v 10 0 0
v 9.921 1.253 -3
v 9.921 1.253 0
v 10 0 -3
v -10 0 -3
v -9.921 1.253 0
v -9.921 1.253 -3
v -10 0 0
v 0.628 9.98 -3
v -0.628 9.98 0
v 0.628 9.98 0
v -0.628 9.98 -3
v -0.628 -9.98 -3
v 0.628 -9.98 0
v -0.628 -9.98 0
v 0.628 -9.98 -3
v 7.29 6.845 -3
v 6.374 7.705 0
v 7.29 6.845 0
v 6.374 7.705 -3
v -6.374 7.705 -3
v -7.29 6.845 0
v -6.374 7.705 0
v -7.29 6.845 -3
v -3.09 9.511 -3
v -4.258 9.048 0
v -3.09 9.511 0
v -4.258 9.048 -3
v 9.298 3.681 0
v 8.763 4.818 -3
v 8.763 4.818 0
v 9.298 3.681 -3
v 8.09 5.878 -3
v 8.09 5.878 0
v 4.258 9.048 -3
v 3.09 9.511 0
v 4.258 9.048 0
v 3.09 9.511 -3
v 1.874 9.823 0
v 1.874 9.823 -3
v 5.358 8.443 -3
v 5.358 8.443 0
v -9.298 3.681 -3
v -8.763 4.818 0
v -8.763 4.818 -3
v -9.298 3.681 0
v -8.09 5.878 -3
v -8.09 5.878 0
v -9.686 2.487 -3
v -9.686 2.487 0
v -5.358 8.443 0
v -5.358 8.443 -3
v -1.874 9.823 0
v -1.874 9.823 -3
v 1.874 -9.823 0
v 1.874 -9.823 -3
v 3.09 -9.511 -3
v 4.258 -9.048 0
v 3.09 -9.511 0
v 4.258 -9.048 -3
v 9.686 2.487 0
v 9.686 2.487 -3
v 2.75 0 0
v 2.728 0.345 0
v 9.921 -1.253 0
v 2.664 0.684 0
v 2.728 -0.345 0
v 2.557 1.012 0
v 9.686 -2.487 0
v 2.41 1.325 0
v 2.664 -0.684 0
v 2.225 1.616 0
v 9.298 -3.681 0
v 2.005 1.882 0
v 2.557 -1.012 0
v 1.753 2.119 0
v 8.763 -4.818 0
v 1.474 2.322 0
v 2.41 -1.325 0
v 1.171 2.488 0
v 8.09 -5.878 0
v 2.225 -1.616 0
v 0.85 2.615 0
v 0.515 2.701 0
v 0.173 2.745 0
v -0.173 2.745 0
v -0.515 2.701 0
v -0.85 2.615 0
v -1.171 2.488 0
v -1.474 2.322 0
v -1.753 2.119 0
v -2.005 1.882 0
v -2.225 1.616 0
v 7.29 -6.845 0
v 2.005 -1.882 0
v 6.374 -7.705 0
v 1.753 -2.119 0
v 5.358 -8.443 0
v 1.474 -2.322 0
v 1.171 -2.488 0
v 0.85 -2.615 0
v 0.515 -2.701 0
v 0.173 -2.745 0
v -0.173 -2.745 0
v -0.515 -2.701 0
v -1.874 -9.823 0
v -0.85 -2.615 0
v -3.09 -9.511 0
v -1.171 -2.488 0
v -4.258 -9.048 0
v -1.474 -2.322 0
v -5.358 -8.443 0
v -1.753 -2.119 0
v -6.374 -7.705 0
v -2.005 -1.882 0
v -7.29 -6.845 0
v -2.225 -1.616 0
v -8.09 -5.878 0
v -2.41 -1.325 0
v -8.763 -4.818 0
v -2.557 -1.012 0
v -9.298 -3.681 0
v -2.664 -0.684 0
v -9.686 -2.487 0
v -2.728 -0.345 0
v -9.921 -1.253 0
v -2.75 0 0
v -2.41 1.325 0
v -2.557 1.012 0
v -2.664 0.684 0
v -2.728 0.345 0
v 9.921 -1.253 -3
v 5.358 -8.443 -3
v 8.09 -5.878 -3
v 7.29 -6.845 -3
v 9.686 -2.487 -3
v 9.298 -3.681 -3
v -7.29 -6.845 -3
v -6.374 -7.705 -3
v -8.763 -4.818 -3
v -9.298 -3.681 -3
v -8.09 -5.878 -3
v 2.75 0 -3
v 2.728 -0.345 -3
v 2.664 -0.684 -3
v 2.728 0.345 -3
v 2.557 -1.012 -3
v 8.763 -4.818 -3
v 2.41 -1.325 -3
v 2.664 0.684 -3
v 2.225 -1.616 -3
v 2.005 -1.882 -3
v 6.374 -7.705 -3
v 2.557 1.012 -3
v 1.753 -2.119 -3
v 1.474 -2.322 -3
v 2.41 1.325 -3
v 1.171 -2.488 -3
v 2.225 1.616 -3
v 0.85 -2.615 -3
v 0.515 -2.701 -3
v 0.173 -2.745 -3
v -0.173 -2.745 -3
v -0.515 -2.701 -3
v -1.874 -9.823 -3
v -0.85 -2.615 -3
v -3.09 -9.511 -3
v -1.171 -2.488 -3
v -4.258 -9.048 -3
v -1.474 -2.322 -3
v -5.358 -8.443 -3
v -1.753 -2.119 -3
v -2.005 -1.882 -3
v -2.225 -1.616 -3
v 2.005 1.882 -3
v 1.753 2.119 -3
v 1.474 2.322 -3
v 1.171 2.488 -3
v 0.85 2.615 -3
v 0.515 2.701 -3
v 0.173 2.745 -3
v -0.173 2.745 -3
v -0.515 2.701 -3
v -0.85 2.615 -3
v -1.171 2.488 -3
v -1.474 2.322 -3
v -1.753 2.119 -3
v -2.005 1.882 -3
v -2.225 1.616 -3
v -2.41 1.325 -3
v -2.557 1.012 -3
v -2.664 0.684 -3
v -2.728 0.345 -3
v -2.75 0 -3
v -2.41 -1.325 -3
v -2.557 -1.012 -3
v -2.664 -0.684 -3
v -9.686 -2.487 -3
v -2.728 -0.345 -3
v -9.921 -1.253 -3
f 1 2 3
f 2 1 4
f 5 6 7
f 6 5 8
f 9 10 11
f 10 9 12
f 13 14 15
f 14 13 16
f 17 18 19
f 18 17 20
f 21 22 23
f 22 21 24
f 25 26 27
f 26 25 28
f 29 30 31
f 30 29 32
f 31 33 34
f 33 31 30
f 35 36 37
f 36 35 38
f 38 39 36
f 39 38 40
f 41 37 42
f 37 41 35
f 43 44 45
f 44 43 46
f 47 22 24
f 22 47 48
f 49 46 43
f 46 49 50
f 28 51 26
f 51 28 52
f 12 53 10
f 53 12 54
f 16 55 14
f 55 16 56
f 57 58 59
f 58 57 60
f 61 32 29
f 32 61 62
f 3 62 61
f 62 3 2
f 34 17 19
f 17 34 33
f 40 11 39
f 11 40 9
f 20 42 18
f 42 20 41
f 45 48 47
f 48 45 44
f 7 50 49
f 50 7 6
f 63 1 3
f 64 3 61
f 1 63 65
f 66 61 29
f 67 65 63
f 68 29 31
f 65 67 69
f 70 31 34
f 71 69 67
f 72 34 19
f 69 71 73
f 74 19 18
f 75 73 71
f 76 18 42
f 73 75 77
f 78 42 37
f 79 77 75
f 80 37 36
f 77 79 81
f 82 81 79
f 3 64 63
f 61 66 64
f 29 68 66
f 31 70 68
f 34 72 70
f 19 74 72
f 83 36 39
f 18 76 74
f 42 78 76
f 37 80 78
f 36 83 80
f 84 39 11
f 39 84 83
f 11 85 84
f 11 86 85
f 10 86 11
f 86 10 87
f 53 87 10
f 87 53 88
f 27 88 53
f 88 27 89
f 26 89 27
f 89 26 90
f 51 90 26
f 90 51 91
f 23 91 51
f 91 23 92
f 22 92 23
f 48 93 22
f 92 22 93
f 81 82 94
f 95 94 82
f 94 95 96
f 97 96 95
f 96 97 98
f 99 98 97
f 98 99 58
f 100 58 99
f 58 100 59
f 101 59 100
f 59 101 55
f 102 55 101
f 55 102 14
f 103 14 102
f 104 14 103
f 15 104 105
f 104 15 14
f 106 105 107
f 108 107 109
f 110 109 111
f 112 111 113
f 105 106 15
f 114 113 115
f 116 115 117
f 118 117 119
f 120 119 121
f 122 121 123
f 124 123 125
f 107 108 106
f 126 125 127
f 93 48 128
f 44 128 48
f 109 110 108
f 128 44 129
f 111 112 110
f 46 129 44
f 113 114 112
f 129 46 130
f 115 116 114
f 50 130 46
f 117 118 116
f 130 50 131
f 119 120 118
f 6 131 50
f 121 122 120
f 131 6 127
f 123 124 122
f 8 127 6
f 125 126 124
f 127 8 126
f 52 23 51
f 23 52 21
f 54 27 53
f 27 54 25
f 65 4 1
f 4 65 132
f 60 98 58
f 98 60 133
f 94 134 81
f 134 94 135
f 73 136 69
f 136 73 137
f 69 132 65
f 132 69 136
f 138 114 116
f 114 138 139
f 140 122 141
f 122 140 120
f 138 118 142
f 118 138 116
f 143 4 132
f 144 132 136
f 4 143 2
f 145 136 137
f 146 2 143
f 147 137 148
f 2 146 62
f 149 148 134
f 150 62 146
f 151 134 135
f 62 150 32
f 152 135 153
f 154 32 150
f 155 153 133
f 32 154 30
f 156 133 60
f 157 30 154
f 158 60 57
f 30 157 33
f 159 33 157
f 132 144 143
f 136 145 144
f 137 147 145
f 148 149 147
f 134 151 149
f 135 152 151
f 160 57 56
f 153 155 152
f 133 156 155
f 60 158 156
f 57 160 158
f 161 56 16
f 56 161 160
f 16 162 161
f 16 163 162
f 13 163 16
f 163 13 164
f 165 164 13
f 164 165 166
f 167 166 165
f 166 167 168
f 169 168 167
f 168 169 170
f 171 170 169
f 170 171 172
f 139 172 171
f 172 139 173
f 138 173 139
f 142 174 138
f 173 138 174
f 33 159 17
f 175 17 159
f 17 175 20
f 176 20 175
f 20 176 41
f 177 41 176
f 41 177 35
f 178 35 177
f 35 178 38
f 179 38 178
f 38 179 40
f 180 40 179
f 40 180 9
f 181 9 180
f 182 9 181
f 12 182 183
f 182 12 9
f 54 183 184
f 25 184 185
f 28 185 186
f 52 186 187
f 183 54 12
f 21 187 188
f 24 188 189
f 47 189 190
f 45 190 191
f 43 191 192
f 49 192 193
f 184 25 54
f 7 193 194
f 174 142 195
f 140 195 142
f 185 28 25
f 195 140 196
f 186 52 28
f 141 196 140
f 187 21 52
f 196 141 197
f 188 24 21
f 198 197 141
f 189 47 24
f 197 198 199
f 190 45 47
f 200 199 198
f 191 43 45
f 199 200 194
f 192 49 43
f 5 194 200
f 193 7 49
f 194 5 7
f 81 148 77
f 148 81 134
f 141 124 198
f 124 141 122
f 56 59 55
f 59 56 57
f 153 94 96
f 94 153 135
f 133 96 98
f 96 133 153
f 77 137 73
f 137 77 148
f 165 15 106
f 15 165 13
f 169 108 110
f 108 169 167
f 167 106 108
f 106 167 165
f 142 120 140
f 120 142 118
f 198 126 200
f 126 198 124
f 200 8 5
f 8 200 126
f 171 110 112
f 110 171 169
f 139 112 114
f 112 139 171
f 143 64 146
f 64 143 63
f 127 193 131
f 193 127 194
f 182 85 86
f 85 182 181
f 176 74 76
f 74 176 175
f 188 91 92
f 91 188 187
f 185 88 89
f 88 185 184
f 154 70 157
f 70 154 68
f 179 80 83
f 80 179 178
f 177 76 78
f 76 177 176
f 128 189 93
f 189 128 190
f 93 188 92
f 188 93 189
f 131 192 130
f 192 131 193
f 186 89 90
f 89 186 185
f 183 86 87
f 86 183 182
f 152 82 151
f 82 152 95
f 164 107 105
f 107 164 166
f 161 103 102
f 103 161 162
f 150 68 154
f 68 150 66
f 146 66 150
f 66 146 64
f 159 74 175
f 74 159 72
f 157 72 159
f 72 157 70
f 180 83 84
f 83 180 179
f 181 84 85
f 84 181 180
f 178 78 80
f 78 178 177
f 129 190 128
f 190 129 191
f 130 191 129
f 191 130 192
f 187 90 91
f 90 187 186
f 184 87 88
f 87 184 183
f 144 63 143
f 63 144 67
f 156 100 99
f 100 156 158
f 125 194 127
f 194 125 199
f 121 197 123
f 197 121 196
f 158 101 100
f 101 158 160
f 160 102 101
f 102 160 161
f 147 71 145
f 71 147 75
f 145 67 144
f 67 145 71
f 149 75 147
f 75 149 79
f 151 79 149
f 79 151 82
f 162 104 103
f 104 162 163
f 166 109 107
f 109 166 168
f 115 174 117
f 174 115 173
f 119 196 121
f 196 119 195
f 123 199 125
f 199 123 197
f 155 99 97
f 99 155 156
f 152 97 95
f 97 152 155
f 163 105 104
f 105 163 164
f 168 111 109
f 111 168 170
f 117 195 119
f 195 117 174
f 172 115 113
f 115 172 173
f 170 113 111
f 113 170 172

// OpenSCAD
$fn = 50;


difference() {
	union() {
		translate(v = [0, 0, -3.0000000000]) {
			cylinder(h = 3, r = 10.0000000000);
		}
		cylinder(h = 0, r = 13.0000000000);
	}
	union() {
		#translate(v = [0, 0, -3]) {
			cylinder(h = 3, r = 2.7500000000);
		}
	}
}
